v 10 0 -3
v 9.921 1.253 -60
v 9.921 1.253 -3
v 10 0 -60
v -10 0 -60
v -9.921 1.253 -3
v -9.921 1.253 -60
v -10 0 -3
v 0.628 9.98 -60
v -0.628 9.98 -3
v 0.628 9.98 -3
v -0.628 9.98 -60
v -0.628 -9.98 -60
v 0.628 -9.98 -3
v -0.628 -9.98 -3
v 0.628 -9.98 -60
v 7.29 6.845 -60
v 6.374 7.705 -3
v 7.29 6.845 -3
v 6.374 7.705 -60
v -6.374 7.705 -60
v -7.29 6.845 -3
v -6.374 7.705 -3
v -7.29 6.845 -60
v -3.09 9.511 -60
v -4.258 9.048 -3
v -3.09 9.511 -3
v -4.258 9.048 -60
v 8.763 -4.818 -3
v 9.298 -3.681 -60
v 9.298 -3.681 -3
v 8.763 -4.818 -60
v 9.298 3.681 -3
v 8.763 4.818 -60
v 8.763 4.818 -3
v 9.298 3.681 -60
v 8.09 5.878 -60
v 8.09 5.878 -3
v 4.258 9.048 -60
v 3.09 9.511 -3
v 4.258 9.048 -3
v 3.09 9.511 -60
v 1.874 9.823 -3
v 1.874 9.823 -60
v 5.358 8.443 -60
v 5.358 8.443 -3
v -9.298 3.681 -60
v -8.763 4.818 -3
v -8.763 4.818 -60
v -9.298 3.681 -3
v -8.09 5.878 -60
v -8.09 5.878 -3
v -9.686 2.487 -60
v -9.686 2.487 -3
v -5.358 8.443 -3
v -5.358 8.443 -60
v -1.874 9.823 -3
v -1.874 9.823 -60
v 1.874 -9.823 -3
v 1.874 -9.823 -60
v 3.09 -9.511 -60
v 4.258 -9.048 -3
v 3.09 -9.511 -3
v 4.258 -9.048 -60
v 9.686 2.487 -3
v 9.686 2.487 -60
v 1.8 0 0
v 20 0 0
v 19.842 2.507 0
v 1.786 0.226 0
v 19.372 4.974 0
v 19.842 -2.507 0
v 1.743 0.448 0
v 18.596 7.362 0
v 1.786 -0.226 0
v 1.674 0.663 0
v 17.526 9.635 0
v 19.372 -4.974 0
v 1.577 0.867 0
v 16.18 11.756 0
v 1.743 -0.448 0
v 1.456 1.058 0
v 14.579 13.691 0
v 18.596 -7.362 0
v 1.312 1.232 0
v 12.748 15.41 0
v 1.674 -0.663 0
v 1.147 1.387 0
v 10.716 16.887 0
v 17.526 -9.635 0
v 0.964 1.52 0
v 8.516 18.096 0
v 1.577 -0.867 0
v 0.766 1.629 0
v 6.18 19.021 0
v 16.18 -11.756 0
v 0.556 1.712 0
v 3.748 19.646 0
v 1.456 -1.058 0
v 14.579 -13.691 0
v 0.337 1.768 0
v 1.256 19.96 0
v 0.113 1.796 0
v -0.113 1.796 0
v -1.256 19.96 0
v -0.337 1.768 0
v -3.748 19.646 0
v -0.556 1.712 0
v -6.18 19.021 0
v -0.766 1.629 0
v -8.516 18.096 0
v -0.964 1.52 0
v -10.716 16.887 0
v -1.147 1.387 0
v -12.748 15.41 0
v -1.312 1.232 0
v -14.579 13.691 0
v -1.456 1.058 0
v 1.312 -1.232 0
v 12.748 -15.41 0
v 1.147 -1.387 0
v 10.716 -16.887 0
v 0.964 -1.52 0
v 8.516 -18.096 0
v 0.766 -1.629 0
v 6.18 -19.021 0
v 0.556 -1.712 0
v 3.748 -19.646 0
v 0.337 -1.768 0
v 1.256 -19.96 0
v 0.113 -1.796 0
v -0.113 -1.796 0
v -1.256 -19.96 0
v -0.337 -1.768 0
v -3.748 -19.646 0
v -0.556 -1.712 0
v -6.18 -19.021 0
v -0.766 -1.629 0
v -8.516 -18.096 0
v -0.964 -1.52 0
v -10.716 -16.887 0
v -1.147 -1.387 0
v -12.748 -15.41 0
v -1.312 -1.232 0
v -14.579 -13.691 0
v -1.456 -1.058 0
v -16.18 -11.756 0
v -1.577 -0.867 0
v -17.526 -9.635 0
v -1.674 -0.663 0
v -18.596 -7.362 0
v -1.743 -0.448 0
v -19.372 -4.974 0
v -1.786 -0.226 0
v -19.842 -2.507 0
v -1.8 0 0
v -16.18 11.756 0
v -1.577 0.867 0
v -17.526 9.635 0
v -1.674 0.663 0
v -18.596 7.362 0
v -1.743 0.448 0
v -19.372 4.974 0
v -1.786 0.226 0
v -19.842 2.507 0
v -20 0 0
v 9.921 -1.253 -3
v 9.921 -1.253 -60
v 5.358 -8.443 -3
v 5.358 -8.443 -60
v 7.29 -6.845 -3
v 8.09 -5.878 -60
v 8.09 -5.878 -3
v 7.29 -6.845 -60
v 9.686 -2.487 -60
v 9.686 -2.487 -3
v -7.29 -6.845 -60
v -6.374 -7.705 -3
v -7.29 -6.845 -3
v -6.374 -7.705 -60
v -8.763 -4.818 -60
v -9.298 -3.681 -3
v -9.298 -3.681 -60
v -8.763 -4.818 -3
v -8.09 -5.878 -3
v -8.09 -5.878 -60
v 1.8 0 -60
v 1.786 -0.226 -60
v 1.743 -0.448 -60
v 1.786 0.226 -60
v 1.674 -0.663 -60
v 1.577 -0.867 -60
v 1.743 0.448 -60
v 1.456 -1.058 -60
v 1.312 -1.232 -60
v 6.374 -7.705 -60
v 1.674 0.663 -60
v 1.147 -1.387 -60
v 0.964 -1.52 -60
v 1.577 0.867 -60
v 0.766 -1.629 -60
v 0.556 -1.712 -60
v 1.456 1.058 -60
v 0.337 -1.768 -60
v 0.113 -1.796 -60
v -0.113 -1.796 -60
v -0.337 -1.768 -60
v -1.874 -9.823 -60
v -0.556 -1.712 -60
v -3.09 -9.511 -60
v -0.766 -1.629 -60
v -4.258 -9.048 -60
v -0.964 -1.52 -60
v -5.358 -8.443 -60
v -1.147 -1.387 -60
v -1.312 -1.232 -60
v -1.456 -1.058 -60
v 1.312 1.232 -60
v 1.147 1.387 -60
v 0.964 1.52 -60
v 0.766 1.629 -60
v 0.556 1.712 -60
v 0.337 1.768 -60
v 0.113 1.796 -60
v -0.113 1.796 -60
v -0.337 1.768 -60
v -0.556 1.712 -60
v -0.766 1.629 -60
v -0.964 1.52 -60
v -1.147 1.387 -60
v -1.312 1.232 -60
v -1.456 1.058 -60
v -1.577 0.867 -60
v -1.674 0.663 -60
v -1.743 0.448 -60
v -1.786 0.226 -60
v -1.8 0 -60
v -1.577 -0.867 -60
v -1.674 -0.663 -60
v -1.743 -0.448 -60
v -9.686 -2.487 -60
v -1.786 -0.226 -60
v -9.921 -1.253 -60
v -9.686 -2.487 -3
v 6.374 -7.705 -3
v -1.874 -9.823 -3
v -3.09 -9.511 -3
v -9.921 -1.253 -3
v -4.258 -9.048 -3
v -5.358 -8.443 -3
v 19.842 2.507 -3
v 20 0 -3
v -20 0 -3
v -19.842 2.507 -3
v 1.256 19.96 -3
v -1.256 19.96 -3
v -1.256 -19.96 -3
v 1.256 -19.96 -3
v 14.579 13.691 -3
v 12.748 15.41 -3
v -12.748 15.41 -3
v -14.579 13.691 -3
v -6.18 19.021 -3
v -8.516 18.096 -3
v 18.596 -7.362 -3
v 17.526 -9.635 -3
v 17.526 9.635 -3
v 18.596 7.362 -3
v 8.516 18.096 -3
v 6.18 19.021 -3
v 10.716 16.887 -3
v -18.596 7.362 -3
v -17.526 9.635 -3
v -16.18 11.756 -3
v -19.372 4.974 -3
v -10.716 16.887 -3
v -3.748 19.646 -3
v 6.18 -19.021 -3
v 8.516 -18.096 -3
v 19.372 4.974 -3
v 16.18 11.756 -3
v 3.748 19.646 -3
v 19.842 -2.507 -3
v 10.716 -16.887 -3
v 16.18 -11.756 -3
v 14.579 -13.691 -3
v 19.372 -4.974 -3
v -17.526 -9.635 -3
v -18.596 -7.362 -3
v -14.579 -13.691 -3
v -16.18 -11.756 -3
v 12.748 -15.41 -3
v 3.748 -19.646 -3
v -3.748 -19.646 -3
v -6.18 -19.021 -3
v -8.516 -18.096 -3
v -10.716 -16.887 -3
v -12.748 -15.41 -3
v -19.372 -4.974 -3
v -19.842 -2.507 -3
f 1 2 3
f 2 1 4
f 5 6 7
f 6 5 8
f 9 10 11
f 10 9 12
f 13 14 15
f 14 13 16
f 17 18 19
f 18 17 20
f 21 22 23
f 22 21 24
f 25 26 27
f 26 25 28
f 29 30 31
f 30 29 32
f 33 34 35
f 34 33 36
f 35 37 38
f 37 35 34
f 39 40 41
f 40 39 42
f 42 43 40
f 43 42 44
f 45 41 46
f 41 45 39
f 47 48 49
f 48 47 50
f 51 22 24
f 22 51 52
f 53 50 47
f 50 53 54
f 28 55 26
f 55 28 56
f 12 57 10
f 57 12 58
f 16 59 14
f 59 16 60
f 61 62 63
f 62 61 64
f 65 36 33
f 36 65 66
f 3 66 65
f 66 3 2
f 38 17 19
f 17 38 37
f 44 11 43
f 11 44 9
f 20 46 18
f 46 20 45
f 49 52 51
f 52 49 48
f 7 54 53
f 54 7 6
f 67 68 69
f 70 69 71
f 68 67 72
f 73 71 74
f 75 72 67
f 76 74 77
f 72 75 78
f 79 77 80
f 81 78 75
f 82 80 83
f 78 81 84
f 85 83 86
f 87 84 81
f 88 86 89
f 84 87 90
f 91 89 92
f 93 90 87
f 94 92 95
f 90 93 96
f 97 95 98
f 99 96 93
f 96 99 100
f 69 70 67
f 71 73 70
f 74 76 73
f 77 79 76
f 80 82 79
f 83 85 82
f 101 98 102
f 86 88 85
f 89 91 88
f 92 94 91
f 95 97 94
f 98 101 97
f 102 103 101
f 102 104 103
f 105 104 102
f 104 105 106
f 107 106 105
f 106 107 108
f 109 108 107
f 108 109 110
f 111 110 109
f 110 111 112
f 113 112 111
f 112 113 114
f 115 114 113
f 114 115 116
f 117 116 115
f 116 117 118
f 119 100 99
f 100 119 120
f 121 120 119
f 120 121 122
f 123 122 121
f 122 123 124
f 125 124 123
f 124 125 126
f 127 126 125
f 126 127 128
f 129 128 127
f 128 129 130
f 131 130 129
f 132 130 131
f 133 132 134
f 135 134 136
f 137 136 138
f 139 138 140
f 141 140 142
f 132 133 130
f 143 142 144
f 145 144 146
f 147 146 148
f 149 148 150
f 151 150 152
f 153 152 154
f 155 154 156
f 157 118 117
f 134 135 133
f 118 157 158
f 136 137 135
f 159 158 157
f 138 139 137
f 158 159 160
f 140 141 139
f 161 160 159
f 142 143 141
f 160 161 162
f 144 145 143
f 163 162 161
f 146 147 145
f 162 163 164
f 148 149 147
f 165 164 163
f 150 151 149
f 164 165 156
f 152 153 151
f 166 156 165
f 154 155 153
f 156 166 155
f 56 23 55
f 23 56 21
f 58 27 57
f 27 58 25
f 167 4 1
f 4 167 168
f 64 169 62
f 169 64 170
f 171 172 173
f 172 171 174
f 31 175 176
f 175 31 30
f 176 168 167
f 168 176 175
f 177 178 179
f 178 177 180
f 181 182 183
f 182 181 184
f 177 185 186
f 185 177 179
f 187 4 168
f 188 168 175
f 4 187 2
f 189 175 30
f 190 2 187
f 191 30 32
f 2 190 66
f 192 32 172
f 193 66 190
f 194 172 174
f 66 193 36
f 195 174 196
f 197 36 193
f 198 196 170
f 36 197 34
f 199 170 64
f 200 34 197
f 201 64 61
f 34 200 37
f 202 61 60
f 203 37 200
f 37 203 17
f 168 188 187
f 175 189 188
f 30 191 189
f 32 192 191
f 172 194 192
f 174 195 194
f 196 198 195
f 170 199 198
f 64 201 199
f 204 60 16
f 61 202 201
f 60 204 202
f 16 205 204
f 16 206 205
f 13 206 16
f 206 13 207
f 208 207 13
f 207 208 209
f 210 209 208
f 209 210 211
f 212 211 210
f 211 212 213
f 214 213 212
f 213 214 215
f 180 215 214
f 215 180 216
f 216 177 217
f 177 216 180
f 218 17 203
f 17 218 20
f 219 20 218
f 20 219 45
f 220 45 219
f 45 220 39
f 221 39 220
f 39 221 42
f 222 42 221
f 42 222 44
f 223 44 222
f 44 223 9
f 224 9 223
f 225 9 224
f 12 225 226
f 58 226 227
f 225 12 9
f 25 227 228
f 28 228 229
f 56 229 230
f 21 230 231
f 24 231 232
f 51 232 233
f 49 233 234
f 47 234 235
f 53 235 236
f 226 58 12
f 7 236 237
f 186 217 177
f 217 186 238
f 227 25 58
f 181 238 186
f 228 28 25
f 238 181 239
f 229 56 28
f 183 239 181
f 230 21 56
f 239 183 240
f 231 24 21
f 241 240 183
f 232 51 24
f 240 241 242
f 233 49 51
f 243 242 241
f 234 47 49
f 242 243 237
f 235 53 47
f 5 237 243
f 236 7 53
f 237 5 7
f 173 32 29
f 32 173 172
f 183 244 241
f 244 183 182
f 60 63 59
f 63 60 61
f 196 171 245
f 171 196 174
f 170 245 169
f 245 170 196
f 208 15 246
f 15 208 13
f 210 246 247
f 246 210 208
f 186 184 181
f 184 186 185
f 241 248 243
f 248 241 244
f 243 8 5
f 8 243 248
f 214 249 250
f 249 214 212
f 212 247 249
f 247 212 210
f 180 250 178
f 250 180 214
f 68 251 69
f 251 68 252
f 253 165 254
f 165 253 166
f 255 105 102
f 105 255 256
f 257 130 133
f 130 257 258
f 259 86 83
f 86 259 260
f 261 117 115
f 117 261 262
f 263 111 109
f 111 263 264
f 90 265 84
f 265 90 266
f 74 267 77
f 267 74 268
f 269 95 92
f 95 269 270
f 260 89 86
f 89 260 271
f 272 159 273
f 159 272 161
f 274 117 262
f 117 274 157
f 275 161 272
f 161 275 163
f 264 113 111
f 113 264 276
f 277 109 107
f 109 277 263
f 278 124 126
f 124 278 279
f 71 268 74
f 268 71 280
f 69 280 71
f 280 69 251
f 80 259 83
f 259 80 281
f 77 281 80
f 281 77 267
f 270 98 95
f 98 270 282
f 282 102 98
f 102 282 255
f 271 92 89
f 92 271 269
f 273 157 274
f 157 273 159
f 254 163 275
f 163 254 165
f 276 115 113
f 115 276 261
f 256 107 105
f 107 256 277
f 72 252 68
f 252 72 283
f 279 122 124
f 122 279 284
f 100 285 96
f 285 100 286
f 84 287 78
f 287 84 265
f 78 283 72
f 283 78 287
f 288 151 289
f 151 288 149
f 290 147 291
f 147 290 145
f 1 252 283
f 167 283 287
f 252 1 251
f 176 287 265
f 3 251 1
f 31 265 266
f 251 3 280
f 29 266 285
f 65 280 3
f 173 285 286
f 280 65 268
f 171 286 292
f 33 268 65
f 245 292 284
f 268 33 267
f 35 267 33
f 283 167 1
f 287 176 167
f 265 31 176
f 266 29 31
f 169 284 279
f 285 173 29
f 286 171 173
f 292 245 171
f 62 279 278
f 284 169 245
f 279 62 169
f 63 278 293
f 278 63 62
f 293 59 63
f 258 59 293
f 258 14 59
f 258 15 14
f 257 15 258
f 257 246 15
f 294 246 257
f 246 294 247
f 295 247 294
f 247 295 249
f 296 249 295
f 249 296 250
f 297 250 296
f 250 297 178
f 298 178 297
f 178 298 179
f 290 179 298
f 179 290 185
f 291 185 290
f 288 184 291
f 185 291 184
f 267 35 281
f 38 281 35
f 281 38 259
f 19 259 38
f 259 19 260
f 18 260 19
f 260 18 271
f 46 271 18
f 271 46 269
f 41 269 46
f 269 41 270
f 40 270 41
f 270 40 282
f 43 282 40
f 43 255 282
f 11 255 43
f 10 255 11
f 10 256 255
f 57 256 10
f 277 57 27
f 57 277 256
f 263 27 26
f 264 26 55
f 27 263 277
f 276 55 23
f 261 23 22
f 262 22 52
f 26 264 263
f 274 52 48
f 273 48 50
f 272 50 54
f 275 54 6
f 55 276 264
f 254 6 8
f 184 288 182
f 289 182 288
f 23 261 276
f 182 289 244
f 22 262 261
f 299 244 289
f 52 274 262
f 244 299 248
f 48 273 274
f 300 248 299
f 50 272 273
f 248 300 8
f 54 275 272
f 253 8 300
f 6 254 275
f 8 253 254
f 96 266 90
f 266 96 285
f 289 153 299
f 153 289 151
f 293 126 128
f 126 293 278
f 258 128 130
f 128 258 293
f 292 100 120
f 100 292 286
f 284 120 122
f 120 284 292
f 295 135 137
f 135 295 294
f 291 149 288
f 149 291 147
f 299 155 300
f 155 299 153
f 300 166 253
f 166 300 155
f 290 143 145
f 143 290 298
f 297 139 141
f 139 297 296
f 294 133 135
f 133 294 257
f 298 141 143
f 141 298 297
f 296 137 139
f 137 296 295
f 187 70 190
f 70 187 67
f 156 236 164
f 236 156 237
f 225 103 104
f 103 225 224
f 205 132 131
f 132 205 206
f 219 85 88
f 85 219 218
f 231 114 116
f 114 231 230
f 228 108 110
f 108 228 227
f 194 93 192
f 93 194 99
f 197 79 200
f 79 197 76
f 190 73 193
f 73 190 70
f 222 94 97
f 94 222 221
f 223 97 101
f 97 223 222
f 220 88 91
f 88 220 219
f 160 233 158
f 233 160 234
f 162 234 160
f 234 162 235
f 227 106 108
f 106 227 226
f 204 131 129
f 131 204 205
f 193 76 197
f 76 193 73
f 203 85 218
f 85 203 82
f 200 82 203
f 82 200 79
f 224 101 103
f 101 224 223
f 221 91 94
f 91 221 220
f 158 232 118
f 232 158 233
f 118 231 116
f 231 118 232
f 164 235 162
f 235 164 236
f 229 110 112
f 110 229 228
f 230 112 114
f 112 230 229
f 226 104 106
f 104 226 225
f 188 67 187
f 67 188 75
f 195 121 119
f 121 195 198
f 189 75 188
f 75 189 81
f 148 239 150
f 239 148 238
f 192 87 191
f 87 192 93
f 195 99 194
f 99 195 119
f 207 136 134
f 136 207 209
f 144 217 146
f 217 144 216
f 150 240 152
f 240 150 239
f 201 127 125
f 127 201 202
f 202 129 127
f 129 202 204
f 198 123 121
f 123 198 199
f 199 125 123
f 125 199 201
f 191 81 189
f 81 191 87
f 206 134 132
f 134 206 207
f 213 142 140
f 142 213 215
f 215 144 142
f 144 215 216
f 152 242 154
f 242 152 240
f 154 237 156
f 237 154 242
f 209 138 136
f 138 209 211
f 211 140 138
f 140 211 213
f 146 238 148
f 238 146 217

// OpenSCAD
$fn = 50;


difference() {
	union() {
		translate(v = [0, 0, -60.0000000000]) {
			cylinder(h = 60, r = 10.0000000000);
		}
		translate(v = [0, 0, -3.0000000000]) {
			cylinder(h = 3, r = 20.0000000000);
		}
	}
	union() {
		#translate(v = [0, 0, -60]) {
			cylinder(h = 60, r = 1.8000000000);
		}
	}
}
